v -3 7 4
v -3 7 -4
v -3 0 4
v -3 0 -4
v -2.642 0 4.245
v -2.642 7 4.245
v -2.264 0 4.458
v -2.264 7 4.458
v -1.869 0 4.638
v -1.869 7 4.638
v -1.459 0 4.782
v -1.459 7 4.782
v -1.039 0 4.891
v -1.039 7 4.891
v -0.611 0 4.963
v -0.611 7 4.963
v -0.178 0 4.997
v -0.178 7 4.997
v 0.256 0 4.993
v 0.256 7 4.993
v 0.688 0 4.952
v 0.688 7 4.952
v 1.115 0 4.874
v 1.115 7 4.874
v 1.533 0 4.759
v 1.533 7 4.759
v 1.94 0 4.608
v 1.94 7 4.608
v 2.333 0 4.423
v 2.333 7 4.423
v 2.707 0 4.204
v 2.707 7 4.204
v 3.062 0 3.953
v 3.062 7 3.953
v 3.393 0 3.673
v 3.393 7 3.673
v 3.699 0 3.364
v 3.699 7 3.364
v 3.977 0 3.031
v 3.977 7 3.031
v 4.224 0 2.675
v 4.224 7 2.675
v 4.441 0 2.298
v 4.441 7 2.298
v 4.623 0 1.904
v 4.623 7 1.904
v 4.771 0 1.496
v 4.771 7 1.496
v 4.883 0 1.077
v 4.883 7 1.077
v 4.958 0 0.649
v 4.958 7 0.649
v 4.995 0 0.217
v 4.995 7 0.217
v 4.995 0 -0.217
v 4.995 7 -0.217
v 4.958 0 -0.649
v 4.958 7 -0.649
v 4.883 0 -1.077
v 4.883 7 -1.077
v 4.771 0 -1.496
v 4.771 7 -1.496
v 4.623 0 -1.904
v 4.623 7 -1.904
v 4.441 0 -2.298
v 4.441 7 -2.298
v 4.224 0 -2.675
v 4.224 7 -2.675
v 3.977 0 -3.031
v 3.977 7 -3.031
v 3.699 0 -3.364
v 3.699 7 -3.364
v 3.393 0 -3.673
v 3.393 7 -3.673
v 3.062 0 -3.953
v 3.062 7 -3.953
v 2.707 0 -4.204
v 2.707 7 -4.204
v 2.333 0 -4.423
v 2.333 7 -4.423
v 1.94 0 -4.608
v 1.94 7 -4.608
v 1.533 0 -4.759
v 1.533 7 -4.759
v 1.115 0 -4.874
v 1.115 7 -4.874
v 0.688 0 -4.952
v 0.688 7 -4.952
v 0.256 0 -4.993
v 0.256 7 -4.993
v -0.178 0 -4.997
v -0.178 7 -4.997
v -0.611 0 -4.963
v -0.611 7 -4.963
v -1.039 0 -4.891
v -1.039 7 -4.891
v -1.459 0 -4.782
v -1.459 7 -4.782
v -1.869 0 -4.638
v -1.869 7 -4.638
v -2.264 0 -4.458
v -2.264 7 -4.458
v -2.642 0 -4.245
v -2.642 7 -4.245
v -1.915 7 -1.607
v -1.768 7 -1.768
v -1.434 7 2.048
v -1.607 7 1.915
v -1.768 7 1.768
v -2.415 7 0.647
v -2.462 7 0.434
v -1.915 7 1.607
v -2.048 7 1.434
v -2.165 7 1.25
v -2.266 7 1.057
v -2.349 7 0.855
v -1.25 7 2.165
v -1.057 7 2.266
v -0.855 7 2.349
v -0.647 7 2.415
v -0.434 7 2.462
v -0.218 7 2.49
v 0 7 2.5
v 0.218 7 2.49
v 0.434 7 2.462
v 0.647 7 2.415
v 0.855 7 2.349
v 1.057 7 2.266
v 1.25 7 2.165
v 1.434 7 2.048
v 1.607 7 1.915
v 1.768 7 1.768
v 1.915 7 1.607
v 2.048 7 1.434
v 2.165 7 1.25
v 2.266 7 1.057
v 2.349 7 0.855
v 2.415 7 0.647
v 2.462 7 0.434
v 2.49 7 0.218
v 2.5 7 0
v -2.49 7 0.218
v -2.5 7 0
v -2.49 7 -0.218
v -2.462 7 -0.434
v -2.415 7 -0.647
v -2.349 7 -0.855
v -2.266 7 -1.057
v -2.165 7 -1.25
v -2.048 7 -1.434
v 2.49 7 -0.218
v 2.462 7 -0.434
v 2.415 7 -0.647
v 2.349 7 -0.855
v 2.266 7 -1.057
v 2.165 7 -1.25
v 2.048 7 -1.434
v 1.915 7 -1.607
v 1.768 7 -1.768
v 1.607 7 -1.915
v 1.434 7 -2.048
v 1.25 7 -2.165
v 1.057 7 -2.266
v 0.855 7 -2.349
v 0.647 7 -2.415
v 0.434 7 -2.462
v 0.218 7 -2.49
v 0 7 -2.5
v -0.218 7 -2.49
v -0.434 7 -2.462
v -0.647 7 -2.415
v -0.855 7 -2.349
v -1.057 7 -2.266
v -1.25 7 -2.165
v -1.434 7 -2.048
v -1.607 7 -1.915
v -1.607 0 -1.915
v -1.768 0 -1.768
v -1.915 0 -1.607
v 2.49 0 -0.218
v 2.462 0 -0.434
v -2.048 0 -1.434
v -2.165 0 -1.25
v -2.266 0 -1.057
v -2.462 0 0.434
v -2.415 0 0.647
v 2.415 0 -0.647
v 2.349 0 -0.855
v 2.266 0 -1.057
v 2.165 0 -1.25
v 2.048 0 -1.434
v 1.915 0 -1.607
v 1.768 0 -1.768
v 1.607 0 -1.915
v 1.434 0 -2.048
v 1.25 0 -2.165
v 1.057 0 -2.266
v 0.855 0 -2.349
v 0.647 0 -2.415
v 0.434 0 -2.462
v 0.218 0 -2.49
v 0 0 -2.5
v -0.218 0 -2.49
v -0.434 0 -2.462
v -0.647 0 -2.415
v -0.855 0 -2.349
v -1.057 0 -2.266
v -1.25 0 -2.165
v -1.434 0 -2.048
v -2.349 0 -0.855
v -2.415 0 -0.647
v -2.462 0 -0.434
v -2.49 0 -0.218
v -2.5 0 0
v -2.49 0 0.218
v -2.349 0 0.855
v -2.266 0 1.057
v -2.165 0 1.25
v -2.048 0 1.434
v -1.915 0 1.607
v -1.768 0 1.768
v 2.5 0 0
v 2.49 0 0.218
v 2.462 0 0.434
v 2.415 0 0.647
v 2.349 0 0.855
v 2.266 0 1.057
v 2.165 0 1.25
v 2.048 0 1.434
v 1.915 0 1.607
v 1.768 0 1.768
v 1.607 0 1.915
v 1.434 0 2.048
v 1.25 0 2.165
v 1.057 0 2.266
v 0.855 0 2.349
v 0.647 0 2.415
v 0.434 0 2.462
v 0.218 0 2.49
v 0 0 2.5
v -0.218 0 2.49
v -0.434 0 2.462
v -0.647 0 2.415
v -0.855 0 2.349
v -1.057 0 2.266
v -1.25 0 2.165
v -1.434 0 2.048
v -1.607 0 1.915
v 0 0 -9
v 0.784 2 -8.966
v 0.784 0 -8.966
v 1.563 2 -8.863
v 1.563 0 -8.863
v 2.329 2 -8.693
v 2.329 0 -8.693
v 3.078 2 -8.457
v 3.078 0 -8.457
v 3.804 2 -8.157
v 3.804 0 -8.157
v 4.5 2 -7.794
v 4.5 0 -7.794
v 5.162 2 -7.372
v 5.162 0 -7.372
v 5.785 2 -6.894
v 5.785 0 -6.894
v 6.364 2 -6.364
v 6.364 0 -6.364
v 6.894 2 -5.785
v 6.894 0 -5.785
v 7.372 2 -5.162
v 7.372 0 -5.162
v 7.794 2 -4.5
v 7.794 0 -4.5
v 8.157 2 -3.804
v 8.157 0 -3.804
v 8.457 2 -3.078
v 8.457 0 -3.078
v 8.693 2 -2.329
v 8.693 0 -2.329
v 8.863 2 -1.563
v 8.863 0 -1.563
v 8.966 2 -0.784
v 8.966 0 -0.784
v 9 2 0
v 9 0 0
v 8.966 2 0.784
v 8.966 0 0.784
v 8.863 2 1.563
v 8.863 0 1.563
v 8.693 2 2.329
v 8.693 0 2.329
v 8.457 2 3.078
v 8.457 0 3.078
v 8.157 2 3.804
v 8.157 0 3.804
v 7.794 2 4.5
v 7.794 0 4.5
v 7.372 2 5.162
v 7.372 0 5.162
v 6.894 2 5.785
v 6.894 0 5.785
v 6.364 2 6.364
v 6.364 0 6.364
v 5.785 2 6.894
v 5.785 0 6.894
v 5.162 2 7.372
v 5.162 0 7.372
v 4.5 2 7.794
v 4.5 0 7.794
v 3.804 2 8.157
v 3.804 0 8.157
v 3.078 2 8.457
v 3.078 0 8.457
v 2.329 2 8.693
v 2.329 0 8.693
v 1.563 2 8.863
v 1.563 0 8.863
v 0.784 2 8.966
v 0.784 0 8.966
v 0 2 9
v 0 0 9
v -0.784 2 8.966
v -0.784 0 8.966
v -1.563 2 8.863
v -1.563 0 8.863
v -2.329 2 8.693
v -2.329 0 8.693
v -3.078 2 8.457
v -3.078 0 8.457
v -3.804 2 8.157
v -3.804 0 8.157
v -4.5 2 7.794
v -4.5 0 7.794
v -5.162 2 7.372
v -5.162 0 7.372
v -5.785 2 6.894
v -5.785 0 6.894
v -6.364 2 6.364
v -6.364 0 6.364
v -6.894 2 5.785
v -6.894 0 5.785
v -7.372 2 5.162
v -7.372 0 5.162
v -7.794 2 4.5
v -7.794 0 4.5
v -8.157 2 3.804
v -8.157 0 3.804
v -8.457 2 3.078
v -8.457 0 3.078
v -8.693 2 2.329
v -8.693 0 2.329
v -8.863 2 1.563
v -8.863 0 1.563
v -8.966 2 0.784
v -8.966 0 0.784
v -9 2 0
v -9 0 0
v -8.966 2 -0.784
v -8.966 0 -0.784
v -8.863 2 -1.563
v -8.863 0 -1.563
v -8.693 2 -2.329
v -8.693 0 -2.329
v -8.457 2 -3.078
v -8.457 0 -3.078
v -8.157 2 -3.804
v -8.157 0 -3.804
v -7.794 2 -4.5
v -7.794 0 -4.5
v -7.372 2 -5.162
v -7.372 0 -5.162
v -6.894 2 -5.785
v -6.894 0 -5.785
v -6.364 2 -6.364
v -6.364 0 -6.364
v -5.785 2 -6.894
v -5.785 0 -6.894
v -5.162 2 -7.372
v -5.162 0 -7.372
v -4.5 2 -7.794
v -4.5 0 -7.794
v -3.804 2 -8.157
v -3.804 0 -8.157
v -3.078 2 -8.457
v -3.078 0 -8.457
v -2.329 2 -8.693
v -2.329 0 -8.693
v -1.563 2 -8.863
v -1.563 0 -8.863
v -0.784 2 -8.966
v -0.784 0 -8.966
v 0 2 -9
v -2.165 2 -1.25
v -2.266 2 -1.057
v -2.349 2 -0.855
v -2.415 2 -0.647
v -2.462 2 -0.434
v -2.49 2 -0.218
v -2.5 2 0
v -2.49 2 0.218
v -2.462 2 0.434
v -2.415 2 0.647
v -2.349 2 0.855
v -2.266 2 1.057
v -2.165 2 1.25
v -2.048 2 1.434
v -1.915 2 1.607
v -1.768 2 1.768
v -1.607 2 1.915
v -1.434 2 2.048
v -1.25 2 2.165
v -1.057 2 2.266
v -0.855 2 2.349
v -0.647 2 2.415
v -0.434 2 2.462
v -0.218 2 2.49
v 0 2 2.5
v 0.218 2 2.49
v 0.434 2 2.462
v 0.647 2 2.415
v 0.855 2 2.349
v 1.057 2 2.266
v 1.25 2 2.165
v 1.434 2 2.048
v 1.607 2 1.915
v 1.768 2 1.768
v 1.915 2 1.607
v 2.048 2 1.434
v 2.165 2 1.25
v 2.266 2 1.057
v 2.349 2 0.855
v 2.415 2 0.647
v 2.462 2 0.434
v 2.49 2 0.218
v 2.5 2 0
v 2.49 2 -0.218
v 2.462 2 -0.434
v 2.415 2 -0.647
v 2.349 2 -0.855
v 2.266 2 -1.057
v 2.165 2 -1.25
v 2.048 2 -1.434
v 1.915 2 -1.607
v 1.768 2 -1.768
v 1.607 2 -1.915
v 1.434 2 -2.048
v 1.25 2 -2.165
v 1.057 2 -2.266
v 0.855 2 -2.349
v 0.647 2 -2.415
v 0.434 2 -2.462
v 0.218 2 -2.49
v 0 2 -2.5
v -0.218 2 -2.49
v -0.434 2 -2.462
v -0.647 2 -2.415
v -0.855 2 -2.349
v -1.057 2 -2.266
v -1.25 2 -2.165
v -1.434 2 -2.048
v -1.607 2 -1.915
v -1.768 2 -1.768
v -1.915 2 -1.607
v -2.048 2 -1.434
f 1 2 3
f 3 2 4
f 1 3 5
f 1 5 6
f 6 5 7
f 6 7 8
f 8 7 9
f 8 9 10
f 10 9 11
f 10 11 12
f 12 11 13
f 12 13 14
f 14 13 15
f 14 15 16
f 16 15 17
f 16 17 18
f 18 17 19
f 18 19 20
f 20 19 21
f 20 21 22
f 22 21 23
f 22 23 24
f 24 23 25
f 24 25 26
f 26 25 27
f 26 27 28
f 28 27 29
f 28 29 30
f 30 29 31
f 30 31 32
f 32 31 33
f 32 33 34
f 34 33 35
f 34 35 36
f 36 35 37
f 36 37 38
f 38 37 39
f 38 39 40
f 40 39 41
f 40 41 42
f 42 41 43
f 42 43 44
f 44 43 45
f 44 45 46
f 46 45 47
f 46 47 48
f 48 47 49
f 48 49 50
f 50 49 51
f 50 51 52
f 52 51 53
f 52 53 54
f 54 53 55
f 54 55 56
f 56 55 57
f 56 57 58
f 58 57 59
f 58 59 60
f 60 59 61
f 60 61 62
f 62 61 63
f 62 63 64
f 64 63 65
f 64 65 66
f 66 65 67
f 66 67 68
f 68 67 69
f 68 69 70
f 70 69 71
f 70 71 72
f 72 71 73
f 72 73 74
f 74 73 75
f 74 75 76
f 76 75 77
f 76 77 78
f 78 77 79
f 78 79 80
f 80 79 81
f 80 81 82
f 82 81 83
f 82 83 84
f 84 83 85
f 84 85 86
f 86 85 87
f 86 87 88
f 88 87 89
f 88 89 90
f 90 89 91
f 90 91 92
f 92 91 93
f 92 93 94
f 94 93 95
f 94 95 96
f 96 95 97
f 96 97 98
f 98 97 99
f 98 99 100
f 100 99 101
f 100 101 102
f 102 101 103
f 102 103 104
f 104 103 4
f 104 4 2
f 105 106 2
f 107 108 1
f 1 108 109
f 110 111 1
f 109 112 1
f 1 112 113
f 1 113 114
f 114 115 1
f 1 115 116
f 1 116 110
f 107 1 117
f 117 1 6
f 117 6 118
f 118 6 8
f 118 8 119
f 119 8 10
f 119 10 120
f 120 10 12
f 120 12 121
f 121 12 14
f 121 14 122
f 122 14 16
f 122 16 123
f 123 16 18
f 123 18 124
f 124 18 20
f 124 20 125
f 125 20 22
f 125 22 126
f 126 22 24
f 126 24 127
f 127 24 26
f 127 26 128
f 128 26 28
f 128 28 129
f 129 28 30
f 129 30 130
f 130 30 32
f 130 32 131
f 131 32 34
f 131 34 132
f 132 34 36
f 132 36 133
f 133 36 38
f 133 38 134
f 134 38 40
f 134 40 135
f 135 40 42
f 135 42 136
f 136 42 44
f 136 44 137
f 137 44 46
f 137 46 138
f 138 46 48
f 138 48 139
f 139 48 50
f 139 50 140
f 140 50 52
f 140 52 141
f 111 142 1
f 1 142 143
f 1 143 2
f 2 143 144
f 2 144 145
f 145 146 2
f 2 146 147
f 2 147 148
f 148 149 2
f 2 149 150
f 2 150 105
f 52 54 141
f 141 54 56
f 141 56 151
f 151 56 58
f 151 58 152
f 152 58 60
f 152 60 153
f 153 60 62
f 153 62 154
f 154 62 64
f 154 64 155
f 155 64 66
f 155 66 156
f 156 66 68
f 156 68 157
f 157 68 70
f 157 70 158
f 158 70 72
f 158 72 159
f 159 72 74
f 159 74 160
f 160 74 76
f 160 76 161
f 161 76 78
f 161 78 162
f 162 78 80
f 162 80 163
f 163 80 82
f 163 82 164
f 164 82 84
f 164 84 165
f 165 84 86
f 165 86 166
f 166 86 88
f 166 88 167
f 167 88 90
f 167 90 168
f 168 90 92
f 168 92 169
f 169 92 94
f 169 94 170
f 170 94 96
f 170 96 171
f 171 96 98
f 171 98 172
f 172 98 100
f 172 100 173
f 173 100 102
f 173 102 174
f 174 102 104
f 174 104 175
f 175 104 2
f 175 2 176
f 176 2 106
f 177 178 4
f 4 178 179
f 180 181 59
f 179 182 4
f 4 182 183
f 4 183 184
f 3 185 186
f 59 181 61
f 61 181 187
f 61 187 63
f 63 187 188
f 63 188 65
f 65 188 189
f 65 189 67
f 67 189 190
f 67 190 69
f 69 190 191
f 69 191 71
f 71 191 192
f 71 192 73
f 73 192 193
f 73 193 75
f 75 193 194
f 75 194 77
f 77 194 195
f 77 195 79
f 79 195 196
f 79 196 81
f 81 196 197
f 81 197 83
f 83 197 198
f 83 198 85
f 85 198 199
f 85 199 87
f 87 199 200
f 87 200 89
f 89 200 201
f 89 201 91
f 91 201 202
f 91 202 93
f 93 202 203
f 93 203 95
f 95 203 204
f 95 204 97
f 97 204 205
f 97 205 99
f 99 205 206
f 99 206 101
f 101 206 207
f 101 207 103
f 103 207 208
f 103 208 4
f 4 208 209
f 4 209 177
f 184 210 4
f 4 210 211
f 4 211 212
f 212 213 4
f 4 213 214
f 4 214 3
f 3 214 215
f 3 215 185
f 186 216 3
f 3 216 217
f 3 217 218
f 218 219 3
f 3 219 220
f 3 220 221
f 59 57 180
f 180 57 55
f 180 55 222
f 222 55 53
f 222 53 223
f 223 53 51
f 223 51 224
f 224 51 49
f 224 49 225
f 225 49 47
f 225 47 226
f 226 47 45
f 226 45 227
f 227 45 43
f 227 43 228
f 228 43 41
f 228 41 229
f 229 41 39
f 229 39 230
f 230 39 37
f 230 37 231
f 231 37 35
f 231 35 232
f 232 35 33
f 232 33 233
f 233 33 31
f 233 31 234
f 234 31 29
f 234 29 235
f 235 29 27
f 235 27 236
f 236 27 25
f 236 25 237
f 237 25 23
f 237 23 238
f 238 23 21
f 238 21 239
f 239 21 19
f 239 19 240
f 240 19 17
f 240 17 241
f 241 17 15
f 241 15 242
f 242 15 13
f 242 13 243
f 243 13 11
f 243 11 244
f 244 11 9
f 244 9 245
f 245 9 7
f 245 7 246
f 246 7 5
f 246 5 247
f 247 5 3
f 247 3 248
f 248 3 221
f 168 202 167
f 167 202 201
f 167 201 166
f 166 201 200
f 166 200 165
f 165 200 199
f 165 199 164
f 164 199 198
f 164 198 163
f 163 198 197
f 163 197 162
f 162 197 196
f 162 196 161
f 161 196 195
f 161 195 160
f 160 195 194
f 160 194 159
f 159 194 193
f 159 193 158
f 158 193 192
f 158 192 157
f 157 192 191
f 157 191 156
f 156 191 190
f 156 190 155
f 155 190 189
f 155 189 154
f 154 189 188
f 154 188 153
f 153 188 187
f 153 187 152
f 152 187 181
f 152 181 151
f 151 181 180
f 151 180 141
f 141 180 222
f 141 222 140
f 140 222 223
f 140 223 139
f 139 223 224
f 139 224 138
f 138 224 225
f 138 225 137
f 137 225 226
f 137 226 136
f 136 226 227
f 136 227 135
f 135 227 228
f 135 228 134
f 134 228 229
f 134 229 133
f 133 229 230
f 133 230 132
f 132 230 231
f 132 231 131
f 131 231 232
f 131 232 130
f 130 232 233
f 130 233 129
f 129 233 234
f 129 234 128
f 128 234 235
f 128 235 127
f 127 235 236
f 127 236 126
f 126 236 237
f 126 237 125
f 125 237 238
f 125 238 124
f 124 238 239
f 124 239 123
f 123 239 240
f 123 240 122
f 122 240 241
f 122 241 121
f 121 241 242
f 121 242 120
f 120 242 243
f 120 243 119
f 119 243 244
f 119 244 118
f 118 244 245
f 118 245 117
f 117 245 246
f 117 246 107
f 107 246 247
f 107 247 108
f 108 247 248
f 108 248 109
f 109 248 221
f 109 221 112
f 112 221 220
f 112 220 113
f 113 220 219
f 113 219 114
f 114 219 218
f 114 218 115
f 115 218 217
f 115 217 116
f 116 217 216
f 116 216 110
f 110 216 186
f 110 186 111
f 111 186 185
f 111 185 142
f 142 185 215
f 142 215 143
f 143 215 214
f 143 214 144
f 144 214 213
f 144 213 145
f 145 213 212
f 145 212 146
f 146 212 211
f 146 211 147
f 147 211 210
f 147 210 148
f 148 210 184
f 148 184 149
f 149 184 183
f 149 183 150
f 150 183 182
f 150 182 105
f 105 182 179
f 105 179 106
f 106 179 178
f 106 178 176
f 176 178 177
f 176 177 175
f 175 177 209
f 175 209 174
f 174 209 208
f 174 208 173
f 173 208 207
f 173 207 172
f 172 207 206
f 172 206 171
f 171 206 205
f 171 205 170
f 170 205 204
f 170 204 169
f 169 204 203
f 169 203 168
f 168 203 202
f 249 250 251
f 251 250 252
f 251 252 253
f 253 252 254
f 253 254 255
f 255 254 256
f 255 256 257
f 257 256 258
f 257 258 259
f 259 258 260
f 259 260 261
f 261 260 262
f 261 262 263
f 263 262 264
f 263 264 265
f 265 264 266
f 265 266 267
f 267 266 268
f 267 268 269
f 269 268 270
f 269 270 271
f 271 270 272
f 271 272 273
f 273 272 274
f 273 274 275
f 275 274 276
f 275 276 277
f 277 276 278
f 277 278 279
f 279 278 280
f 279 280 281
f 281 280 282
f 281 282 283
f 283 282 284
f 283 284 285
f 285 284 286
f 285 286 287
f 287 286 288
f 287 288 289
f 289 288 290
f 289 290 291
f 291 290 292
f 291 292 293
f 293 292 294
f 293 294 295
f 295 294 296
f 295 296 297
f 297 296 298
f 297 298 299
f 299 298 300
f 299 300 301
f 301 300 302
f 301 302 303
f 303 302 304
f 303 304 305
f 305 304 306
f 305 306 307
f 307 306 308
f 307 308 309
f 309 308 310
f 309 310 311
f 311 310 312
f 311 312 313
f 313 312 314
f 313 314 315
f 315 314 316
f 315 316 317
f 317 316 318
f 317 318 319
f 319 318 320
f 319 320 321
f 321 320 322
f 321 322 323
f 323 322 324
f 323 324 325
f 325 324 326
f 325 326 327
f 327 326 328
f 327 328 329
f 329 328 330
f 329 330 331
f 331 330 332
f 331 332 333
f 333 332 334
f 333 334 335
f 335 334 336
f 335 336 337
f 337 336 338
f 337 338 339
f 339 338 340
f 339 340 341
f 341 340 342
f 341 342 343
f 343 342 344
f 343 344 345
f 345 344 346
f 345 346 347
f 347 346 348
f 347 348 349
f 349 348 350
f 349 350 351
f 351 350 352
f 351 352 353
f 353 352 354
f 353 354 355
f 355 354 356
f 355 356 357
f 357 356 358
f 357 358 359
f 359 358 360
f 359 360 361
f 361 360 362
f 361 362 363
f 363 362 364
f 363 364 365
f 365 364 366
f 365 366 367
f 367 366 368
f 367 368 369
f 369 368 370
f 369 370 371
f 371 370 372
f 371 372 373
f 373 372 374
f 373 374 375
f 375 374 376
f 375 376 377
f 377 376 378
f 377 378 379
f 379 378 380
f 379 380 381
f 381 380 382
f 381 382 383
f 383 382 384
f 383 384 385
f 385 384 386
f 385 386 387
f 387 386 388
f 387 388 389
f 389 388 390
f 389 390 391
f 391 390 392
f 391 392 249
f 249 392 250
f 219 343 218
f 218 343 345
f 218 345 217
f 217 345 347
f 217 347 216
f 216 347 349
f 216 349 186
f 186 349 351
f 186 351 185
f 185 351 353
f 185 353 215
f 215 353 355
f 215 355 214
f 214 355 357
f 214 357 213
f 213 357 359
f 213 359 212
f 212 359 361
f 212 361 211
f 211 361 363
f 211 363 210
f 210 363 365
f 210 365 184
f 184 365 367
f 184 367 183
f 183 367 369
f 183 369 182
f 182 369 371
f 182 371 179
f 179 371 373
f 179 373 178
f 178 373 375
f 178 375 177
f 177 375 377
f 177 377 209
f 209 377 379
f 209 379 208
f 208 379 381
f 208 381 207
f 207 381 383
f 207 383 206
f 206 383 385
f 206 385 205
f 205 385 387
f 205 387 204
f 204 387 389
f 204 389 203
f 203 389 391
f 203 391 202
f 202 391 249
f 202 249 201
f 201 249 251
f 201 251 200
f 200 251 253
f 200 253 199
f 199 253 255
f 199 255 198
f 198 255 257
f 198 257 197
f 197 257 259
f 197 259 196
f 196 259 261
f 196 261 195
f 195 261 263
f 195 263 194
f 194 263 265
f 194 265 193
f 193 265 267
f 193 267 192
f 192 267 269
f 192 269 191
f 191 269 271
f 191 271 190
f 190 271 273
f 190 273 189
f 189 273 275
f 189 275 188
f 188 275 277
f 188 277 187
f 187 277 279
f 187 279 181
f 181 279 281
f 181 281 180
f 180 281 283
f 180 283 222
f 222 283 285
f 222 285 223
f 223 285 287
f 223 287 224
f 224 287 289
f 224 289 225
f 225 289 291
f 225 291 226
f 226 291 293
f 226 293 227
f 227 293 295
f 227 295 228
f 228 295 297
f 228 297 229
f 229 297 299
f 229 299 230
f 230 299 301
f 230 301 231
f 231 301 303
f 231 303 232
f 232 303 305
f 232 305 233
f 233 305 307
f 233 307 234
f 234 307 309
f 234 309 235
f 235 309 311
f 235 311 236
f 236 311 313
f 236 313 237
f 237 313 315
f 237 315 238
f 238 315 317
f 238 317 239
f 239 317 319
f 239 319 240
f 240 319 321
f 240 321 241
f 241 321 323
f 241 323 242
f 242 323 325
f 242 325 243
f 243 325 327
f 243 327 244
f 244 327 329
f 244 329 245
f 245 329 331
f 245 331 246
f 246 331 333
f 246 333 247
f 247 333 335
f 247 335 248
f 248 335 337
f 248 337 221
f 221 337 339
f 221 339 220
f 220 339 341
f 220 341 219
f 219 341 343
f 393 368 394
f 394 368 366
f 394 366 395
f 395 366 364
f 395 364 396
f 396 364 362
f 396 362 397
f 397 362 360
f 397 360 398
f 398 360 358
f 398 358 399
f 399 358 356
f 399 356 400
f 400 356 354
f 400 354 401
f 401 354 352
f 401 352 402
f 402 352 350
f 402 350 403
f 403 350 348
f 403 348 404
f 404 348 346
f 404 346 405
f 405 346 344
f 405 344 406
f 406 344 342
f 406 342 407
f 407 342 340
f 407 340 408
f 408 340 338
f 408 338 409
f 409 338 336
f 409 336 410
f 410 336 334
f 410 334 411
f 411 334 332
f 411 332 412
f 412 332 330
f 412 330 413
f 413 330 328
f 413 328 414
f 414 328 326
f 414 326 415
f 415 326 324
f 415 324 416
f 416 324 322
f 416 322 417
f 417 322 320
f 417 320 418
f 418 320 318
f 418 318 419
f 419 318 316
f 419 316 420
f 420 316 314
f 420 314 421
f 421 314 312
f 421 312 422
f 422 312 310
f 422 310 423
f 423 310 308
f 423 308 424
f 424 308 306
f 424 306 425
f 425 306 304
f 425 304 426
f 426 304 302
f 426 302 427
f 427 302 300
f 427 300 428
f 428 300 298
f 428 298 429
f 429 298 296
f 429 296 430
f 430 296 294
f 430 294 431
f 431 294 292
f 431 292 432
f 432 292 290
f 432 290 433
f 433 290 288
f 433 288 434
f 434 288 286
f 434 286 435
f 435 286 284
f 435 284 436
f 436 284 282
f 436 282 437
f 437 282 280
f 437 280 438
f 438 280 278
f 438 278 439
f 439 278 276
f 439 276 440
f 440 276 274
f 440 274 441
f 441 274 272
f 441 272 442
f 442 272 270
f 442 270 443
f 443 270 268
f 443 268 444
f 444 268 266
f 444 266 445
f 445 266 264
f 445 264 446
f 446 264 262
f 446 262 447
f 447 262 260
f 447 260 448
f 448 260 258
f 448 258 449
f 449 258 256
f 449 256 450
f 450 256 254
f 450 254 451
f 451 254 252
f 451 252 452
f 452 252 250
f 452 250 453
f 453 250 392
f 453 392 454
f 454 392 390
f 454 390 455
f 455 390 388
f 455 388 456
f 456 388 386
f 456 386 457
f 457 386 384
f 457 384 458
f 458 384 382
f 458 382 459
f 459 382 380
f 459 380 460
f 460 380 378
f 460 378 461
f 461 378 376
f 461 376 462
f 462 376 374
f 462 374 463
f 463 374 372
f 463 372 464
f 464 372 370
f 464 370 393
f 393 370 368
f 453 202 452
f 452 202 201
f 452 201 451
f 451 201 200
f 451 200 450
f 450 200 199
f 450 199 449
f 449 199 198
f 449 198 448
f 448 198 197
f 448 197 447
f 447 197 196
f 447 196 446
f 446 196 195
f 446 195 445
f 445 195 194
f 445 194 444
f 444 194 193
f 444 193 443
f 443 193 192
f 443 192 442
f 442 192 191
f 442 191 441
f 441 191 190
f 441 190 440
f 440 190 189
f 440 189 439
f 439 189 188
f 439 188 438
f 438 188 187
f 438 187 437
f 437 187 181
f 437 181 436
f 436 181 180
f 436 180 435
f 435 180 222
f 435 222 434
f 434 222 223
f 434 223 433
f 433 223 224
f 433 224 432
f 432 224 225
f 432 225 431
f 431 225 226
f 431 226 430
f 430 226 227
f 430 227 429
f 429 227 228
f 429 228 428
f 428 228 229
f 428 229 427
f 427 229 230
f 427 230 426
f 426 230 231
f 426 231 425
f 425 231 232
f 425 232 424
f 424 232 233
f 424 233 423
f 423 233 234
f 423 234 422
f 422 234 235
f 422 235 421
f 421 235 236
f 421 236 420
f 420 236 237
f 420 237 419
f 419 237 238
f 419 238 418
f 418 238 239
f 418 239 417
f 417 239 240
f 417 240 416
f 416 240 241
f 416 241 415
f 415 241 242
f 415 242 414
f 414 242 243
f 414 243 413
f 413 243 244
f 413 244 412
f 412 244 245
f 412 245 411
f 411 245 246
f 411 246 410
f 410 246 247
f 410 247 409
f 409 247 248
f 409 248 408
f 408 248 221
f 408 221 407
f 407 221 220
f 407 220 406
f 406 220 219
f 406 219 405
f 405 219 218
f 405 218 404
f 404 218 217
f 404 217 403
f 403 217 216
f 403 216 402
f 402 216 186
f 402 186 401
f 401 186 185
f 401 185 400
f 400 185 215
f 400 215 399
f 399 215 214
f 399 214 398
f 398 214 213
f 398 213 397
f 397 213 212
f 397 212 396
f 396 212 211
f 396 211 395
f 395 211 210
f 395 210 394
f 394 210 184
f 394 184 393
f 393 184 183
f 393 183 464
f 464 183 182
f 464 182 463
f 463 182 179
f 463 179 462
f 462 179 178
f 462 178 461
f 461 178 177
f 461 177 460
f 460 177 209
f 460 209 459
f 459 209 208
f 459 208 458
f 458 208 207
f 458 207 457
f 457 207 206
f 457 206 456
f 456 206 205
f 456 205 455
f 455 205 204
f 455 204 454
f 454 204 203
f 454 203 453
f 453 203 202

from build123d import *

# Parameters (mm, degrees)
KEY_EXTRUDE_DEPTH         = 7
SKETCH1_6_R               = 9
BASE_EXTRUDE_DEPTH        = 2
SKETCH2_R                 = 2.45
MOTORSHAFT_CUT_DEPTH      = 1
MOTORSHAFT_CUT_DEPTH_BACK = 8


with BuildPart() as part:
    # Sketch1 → key-Extrude (new body)
    with BuildSketch(Plane(origin=(0, 0, 0), x_dir=(1, 0, 0), z_dir=(0, 1, 0))):
        with BuildLine():
            ThreePointArc((5, 0), (2.236067977, 4.472135955), (-3, 4))
            Line((-3, 4), (-3, -4))
            ThreePointArc((-3, -4), (2.236067977, -4.472135955), (5, 0))
        make_face()
    extrude(amount=KEY_EXTRUDE_DEPTH)


with BuildPart() as body_2:
    # Sketch1<6> → base-Extrude (new body)
    with BuildSketch(Plane(origin=(0, 0, 0), x_dir=(1, 0, 0), z_dir=(0, 1, 0))):
        Circle(SKETCH1_6_R)
    extrude(amount=BASE_EXTRUDE_DEPTH)


with BuildPart() as motorshaft_cut_tool:
    # Sketch2 → motorshaft-Cut (new body, two sides)
    with BuildSketch(Plane.XZ) as motorshaft_cut_sk:
        Circle(SKETCH2_R)
    extrude(amount=MOTORSHAFT_CUT_DEPTH)
    extrude(motorshaft_cut_sk.sketch, amount=-MOTORSHAFT_CUT_DEPTH_BACK)


with BuildPart() as part_1:
    add(part.part)

    # motorshaft-Cut: cut by motorshaft_cut_tool
    add(motorshaft_cut_tool.part, mode=Mode.SUBTRACT)


with BuildPart() as body_2_1:
    add(body_2.part)

    # motorshaft-Cut: cut by motorshaft_cut_tool
    add(motorshaft_cut_tool.part, mode=Mode.SUBTRACT)


solid = Compound([part_1.part, body_2_1.part])
